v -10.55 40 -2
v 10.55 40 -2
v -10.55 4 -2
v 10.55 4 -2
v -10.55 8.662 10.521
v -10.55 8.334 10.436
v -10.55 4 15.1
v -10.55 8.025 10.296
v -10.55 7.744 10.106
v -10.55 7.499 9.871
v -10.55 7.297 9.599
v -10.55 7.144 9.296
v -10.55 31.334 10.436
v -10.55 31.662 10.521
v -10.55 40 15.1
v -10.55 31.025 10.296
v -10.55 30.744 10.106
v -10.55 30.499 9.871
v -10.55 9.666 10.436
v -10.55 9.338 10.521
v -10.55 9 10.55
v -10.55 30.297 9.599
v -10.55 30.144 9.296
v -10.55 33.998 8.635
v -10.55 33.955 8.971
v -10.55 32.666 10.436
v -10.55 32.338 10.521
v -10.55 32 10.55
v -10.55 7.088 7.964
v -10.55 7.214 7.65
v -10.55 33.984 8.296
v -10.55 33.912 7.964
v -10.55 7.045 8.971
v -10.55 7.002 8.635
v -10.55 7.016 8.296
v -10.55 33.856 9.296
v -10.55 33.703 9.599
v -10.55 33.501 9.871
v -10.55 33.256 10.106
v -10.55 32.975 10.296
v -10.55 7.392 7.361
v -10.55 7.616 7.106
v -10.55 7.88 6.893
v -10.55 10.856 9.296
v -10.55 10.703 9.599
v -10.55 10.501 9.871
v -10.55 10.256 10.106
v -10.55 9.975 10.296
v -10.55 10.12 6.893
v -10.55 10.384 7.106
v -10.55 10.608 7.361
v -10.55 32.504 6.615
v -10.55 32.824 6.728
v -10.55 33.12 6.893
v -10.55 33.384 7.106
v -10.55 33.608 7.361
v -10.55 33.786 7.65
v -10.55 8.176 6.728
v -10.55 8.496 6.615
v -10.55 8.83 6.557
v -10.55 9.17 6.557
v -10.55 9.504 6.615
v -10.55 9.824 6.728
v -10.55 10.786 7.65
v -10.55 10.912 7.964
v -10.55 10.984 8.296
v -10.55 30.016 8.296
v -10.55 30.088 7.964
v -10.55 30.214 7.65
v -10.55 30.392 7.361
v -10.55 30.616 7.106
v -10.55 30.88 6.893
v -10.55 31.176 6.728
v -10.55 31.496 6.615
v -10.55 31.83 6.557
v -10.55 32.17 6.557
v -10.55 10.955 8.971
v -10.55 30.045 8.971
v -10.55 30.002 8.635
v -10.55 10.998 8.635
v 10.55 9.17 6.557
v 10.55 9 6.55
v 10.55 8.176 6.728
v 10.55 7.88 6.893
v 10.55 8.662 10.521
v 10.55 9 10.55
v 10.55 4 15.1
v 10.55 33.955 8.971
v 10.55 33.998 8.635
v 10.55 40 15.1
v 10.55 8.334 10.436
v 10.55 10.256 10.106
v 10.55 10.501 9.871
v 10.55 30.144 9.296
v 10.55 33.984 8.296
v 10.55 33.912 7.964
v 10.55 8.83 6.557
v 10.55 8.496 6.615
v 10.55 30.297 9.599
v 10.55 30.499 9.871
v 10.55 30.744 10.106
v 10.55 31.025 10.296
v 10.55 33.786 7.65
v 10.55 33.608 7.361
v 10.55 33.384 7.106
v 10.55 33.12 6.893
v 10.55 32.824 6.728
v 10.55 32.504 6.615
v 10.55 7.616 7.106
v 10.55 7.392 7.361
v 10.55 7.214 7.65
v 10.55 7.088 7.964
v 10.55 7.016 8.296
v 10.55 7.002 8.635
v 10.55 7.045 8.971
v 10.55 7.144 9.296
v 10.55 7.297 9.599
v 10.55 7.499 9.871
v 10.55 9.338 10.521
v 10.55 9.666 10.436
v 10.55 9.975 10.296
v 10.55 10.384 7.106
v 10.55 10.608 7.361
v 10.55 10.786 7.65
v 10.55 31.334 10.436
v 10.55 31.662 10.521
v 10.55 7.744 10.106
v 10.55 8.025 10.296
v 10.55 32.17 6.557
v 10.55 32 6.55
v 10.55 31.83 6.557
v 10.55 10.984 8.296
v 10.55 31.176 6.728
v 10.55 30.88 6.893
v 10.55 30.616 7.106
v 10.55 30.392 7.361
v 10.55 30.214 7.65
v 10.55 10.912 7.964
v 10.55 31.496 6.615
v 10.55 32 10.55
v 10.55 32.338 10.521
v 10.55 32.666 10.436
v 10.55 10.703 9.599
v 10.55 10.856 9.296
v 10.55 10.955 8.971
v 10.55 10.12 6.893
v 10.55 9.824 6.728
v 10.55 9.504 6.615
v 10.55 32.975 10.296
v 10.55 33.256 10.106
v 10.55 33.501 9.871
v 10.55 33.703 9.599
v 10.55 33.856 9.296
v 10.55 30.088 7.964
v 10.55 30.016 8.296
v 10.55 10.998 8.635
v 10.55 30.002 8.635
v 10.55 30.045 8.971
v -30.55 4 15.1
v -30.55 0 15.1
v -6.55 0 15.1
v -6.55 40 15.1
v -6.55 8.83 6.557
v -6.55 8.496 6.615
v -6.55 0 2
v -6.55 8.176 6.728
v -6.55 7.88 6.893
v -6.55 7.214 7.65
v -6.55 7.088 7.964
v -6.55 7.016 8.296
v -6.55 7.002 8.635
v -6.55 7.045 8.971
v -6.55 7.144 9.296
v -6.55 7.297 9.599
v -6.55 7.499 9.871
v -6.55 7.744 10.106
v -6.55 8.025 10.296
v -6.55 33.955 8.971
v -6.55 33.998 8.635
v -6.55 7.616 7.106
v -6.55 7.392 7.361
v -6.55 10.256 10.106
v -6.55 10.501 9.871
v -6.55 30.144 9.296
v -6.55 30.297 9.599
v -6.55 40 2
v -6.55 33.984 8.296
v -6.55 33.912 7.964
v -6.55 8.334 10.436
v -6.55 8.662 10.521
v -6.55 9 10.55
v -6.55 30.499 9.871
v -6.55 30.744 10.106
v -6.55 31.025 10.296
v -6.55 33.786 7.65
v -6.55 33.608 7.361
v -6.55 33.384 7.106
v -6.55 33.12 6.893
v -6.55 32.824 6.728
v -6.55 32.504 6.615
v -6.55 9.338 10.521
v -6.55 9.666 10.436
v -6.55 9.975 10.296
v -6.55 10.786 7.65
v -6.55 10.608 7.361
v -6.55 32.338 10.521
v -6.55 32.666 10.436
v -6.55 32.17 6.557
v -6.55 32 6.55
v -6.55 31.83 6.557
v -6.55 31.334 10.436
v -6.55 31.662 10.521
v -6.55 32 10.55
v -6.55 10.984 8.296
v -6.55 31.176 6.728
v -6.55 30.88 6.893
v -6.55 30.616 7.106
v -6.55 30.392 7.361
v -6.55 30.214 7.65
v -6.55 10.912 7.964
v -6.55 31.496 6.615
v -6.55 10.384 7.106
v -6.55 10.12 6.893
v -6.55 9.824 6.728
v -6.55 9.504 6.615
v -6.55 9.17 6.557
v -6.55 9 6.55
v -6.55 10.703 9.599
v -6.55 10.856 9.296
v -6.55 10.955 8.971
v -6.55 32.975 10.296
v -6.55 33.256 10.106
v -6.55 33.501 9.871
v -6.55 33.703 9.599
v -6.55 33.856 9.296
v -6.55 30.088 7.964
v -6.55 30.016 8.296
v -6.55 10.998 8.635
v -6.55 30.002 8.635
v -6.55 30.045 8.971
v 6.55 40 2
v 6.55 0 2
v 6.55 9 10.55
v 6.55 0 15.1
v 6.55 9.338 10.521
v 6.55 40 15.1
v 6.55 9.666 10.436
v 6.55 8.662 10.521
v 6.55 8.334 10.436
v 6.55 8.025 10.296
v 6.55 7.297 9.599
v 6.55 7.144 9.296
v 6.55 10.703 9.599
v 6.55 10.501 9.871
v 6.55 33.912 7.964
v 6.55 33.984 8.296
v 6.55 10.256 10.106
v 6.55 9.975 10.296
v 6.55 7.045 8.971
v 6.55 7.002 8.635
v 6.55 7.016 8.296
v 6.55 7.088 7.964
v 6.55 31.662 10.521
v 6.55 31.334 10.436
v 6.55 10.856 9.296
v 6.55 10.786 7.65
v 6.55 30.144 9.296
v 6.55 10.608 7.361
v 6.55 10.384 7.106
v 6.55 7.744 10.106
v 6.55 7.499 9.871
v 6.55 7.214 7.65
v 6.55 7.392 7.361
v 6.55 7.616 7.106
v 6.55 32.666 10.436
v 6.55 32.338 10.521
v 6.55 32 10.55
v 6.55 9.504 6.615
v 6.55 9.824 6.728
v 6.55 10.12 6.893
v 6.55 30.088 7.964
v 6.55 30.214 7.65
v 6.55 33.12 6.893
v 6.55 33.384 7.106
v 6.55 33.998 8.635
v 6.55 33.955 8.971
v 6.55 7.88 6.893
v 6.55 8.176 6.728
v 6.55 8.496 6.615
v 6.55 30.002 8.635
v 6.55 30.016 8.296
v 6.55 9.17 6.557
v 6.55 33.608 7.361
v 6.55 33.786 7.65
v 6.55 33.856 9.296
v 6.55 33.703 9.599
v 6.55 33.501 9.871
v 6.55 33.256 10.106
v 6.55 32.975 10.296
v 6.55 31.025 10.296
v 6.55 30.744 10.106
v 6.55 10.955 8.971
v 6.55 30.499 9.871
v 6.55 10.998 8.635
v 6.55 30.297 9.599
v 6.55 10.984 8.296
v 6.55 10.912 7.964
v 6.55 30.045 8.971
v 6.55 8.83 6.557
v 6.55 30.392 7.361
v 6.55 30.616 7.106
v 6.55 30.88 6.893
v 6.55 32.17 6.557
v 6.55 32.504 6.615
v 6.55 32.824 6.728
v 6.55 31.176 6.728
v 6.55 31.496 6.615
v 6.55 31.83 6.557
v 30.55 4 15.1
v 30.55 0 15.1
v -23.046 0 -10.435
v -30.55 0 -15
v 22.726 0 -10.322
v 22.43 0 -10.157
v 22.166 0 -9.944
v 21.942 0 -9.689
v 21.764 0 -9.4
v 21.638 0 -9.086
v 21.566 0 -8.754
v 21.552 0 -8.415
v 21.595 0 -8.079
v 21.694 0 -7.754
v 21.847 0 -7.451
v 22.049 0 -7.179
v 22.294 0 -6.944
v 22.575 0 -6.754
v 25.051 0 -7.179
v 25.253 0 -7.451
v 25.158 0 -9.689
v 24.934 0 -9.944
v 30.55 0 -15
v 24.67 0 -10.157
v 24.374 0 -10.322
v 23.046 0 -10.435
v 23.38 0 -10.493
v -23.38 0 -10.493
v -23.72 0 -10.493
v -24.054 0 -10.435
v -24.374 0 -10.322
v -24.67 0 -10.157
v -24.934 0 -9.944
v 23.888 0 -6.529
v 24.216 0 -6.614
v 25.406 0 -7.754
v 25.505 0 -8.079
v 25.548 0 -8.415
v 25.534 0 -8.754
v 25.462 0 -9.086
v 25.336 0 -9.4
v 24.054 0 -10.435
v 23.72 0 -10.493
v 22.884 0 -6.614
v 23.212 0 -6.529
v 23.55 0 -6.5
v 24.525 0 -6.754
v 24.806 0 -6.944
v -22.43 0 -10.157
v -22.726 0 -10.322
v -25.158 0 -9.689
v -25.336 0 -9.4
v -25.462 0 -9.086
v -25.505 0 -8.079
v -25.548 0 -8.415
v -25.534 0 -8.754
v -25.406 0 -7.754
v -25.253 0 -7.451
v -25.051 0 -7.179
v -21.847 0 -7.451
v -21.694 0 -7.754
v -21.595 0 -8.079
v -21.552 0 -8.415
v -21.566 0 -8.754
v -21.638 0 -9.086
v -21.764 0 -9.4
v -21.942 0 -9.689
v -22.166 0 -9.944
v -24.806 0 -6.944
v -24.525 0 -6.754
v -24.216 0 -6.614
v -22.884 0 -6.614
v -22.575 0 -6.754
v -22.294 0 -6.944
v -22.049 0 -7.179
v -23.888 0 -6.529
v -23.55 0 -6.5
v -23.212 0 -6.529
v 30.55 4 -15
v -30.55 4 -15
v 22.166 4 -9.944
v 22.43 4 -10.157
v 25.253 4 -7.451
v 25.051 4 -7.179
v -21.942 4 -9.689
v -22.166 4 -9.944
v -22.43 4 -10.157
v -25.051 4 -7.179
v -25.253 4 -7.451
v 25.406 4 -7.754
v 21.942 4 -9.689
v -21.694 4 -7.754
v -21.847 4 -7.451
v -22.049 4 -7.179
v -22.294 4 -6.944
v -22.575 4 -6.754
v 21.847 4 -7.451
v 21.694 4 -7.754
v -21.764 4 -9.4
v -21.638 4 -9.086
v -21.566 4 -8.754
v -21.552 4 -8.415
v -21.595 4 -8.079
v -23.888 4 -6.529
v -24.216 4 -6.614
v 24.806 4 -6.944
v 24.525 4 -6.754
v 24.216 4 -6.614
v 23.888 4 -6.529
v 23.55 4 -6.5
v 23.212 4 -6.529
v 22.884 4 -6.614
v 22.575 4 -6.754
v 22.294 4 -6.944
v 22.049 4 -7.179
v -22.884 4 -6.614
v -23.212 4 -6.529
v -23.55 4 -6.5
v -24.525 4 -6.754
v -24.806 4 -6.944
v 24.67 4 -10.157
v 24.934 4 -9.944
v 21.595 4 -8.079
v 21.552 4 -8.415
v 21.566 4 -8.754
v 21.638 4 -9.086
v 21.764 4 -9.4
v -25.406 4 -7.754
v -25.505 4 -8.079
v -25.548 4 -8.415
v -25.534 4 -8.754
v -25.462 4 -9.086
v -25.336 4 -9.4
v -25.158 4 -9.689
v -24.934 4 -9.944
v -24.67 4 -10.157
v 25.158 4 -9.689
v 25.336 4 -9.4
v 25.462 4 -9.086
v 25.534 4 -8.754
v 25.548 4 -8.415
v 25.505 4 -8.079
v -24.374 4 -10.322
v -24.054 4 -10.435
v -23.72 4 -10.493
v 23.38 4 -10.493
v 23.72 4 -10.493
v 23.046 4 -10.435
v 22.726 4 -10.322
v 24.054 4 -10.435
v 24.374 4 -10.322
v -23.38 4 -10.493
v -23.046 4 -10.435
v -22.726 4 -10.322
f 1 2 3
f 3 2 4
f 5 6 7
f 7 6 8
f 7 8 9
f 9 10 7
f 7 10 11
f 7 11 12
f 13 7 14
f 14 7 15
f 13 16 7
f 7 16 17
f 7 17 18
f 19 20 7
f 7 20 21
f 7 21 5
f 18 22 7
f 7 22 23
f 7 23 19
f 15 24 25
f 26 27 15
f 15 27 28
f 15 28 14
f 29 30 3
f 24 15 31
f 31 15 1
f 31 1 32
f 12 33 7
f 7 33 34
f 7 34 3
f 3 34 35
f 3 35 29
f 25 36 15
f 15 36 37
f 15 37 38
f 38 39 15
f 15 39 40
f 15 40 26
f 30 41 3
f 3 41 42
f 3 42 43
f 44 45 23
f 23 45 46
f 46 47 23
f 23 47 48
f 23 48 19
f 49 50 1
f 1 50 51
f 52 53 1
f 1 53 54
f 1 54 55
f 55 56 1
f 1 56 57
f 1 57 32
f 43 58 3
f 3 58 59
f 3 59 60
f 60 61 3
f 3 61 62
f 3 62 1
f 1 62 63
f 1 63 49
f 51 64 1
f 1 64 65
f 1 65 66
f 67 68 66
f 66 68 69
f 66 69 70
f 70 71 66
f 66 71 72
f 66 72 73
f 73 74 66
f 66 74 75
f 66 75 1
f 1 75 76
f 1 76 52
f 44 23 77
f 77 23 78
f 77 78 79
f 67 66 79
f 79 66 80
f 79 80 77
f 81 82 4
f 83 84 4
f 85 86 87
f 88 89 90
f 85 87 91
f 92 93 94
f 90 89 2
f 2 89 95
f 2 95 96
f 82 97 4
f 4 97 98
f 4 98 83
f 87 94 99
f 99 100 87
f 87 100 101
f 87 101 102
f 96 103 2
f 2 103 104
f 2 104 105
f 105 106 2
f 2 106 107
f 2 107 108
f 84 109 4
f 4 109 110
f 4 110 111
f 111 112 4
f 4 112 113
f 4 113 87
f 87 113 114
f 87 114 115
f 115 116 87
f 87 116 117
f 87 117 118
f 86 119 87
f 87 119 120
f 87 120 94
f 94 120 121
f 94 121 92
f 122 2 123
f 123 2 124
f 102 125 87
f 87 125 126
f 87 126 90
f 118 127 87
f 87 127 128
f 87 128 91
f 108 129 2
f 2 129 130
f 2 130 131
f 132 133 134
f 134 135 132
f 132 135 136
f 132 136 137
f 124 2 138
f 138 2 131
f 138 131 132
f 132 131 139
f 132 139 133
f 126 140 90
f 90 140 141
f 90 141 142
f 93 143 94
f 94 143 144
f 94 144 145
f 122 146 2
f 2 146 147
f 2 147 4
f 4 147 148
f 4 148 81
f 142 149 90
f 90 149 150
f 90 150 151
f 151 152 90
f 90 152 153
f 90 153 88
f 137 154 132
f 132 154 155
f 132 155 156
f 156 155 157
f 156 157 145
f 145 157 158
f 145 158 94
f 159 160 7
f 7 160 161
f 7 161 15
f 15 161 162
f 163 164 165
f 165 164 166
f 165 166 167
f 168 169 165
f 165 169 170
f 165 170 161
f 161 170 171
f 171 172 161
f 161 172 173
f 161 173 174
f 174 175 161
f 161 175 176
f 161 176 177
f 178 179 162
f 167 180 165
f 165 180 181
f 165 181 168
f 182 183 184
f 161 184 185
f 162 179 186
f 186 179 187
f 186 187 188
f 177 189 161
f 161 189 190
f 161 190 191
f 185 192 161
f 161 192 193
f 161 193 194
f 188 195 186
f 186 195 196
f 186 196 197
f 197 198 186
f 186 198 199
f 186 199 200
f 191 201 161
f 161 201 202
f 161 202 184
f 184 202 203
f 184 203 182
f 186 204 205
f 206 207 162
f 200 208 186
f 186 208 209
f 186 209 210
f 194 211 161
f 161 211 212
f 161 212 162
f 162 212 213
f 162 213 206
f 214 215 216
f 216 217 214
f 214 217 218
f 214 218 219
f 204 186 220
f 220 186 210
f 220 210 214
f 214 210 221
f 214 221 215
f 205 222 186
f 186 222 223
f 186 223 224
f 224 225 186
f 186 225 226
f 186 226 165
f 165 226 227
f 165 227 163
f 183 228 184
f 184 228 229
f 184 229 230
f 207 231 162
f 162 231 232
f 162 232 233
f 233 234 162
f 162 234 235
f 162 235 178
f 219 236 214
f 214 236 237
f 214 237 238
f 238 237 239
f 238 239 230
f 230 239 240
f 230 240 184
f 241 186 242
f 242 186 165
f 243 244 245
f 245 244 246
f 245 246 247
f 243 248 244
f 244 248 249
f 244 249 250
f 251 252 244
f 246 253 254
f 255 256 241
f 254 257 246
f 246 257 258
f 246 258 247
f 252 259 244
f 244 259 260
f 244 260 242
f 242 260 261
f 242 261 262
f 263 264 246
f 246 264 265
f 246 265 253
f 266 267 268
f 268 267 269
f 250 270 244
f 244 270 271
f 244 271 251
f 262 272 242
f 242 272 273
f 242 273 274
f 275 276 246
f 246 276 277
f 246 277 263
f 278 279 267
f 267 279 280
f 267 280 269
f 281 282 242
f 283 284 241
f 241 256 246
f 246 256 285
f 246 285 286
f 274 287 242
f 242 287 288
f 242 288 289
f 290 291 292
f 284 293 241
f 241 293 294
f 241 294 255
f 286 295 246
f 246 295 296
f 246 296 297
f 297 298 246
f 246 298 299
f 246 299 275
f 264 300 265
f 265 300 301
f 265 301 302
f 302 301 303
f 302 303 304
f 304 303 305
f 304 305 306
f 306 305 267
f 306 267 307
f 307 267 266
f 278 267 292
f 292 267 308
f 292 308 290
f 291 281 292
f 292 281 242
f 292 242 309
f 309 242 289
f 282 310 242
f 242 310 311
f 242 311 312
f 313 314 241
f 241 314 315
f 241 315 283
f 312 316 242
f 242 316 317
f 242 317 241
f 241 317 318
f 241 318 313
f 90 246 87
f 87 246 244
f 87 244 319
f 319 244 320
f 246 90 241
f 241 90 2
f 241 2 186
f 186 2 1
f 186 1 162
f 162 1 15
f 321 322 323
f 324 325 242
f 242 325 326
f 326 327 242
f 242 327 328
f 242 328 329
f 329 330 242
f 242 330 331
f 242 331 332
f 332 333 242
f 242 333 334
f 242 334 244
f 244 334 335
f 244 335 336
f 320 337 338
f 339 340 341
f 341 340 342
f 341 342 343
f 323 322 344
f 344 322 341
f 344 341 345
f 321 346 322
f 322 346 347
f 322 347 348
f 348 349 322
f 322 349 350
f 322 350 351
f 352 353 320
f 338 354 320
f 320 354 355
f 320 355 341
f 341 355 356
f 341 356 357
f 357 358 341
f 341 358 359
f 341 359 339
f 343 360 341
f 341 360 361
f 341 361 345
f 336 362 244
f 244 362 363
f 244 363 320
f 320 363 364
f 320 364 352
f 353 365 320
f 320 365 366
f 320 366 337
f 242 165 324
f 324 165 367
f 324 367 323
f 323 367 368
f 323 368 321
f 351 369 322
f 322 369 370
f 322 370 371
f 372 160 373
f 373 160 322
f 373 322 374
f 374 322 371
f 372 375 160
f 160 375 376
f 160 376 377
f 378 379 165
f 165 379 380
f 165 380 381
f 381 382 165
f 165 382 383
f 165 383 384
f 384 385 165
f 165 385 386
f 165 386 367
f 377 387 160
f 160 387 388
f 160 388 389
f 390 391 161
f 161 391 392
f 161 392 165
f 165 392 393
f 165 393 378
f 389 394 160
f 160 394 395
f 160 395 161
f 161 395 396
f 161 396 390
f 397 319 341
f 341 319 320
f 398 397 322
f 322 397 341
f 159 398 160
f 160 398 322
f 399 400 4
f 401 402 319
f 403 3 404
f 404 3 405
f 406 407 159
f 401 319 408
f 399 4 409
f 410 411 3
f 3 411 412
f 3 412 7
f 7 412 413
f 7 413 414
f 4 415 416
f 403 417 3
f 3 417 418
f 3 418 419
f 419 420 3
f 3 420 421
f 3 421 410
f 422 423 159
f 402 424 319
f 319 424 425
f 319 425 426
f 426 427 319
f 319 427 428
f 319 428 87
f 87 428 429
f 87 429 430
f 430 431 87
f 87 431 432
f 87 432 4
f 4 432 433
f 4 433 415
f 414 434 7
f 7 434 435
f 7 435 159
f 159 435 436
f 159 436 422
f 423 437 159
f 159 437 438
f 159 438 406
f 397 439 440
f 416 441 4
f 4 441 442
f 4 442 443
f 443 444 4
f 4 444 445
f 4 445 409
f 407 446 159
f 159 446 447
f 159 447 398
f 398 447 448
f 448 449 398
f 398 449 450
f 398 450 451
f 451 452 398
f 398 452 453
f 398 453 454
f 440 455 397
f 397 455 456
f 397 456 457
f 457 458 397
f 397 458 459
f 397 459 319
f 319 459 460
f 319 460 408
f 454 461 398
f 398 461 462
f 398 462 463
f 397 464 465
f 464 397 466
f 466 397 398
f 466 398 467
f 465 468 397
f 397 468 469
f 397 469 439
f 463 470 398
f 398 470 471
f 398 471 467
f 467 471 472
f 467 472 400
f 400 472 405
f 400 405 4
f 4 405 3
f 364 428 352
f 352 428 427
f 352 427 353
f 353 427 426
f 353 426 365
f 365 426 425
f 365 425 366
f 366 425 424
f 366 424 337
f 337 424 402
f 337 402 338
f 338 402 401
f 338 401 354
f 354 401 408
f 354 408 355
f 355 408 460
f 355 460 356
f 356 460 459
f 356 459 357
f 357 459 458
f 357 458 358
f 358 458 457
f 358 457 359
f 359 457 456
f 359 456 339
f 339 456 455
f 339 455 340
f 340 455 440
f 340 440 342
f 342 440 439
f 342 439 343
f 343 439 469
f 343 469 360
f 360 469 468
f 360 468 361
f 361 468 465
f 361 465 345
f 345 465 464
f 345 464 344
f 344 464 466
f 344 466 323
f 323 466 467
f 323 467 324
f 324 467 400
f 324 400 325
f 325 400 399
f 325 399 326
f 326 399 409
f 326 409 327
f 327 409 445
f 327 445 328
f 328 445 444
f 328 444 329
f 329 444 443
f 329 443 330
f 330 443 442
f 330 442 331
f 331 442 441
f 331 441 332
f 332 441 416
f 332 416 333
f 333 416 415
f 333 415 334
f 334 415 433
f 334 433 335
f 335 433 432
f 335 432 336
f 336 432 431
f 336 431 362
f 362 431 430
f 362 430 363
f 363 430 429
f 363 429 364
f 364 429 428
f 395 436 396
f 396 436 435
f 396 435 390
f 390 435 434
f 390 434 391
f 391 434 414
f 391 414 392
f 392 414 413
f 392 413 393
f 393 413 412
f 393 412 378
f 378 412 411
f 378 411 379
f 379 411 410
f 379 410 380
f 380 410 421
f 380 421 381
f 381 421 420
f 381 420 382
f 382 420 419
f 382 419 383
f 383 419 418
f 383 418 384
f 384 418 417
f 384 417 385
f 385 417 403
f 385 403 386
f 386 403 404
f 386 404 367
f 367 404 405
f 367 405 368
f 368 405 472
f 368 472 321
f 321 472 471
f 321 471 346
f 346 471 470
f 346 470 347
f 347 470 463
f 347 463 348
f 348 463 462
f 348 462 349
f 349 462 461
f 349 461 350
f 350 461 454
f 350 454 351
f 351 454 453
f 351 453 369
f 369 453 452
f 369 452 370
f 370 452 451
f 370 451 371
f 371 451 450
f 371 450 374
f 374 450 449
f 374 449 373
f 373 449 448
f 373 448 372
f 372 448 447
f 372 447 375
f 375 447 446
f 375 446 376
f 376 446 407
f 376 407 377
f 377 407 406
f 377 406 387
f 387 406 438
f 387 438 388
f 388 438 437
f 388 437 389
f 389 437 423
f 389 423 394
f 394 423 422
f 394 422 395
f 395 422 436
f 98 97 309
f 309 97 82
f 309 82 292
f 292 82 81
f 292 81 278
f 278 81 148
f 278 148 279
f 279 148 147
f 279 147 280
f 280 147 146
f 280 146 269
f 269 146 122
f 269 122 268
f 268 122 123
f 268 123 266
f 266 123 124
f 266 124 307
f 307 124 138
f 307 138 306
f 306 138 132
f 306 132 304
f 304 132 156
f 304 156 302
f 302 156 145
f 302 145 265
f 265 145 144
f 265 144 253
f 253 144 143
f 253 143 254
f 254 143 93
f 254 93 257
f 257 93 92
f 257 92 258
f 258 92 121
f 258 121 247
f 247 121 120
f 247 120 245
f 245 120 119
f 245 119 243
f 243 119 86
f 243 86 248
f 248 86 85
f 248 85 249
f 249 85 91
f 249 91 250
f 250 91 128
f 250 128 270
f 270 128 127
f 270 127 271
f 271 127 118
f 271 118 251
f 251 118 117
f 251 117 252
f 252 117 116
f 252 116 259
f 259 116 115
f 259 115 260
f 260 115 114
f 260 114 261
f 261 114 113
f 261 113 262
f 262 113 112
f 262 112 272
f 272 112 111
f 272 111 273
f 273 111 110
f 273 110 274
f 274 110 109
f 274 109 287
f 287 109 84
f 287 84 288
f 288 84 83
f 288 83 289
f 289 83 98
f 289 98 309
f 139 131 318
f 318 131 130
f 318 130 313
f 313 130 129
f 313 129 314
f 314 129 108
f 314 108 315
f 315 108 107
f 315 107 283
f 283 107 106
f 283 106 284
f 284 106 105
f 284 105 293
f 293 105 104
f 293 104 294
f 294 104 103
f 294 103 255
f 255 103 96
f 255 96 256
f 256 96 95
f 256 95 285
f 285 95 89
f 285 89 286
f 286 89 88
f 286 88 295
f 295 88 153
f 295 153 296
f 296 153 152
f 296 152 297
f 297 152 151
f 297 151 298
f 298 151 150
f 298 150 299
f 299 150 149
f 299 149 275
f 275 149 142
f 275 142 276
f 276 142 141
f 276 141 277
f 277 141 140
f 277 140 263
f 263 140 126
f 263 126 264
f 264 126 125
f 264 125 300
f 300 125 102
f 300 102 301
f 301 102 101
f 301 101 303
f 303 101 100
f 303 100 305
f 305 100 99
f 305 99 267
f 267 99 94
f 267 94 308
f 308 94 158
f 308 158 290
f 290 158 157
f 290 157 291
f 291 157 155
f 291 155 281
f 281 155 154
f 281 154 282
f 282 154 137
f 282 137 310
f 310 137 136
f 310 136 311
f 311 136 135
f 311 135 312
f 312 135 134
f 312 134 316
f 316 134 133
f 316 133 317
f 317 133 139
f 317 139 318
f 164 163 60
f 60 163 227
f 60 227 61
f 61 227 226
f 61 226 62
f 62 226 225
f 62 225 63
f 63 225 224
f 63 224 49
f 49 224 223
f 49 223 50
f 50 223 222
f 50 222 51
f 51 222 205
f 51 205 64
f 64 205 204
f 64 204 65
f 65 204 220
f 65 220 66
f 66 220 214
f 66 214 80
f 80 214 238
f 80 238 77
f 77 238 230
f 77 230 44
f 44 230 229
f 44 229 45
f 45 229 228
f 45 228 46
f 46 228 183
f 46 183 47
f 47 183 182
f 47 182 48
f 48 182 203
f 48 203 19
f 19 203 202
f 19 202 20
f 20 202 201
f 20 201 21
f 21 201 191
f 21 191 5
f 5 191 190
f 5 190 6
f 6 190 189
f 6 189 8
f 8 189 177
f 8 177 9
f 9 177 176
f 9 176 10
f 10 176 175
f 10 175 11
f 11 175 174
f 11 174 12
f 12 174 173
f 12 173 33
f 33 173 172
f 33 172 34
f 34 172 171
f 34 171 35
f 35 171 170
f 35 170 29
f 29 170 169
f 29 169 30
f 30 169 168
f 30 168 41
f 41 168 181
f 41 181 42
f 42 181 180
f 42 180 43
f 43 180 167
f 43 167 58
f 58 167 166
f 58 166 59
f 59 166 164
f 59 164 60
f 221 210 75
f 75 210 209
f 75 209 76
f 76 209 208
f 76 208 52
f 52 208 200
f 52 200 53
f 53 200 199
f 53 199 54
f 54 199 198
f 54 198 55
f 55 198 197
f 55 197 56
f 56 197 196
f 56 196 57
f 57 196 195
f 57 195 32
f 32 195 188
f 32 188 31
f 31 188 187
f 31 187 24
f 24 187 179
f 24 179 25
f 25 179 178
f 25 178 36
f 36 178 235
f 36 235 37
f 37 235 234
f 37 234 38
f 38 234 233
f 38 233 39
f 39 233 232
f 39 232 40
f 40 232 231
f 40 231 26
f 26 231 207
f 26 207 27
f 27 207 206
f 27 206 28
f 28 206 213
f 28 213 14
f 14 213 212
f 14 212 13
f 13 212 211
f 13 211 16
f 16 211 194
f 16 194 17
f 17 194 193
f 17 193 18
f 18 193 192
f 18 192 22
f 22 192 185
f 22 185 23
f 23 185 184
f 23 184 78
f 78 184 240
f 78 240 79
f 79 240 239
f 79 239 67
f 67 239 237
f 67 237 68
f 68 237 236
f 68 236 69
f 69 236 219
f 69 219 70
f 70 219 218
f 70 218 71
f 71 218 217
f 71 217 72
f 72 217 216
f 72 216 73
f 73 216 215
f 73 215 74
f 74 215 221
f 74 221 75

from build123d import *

# Parameters (mm, degrees)
SKETCH1_W           = 13.1
SKETCH1_H           = 4
BOSS_EXTRUDE1_DEPTH = 40
SKETCH2_W           = 21.1
SKETCH2_H           = 13
BOSS_EXTRUDE2_DEPTH = 4
SKETCH3_R           = 2
CUT_EXTRUDE1_DEPTH  = 50.571287052
SKETCH4_R           = 2
CUT_EXTRUDE2_DEPTH  = 60.306154824


with BuildPart() as part:
    # Sketch1 → Boss-Extrude1 (new body)
    with BuildSketch(Plane(origin=(0, 0, 0), x_dir=(1, 0, 0), z_dir=(0, 1, 0))):
        Polygon((-6.55, -15.1), (-6.55, -2), (-6.55, 2), (-10.55, 2), (-10.55, -15.1), align=None)
        Rectangle(SKETCH1_W, SKETCH1_H)
        Polygon((6.55, 2), (6.55, -2), (6.55, -15.1), (10.55, -15.1), (10.55, 2), align=None)
    extrude(amount=BOSS_EXTRUDE1_DEPTH)

    # Sketch2 → Boss-Extrude2 (add)
    with BuildSketch(Plane.XZ):
        Polygon((30.55, 15.1), (10.55, 15.1), (10.55, -2), (10.55, -15), (30.55, -15), align=None)
        with Locations((0, -8.5)):
            Rectangle(SKETCH2_W, SKETCH2_H)
        Polygon((-10.55, -15), (-10.55, -2), (-10.55, 15.1), (-30.55, 15.1), (-30.55, -15), align=None)
    extrude(amount=-BOSS_EXTRUDE2_DEPTH)

    # Sketch3 → Cut-Extrude1 (cut, through all)
    with BuildSketch(Plane(origin=(0, 4, 0), x_dir=(1, 0, 0), z_dir=(0, 1, 0))):
        with Locations(Location((-23.55, 8.5, 0), (0, 0, 270))):
            Circle(SKETCH3_R)
        with Locations(Location((23.55, 8.5, 0), (0, 0, 270))):
            Circle(SKETCH3_R)
    extrude(amount=-CUT_EXTRUDE1_DEPTH, mode=Mode.SUBTRACT)

    # Sketch4 → Cut-Extrude2 (cut, through all)
    with BuildSketch(Plane.ZY.offset(10.55)):
        with Locations((8.55, 9)):
            Circle(SKETCH4_R)
        with Locations((8.55, 32)):
            Circle(SKETCH4_R)
    extrude(amount=-CUT_EXTRUDE2_DEPTH, mode=Mode.SUBTRACT)


solid = part.part
